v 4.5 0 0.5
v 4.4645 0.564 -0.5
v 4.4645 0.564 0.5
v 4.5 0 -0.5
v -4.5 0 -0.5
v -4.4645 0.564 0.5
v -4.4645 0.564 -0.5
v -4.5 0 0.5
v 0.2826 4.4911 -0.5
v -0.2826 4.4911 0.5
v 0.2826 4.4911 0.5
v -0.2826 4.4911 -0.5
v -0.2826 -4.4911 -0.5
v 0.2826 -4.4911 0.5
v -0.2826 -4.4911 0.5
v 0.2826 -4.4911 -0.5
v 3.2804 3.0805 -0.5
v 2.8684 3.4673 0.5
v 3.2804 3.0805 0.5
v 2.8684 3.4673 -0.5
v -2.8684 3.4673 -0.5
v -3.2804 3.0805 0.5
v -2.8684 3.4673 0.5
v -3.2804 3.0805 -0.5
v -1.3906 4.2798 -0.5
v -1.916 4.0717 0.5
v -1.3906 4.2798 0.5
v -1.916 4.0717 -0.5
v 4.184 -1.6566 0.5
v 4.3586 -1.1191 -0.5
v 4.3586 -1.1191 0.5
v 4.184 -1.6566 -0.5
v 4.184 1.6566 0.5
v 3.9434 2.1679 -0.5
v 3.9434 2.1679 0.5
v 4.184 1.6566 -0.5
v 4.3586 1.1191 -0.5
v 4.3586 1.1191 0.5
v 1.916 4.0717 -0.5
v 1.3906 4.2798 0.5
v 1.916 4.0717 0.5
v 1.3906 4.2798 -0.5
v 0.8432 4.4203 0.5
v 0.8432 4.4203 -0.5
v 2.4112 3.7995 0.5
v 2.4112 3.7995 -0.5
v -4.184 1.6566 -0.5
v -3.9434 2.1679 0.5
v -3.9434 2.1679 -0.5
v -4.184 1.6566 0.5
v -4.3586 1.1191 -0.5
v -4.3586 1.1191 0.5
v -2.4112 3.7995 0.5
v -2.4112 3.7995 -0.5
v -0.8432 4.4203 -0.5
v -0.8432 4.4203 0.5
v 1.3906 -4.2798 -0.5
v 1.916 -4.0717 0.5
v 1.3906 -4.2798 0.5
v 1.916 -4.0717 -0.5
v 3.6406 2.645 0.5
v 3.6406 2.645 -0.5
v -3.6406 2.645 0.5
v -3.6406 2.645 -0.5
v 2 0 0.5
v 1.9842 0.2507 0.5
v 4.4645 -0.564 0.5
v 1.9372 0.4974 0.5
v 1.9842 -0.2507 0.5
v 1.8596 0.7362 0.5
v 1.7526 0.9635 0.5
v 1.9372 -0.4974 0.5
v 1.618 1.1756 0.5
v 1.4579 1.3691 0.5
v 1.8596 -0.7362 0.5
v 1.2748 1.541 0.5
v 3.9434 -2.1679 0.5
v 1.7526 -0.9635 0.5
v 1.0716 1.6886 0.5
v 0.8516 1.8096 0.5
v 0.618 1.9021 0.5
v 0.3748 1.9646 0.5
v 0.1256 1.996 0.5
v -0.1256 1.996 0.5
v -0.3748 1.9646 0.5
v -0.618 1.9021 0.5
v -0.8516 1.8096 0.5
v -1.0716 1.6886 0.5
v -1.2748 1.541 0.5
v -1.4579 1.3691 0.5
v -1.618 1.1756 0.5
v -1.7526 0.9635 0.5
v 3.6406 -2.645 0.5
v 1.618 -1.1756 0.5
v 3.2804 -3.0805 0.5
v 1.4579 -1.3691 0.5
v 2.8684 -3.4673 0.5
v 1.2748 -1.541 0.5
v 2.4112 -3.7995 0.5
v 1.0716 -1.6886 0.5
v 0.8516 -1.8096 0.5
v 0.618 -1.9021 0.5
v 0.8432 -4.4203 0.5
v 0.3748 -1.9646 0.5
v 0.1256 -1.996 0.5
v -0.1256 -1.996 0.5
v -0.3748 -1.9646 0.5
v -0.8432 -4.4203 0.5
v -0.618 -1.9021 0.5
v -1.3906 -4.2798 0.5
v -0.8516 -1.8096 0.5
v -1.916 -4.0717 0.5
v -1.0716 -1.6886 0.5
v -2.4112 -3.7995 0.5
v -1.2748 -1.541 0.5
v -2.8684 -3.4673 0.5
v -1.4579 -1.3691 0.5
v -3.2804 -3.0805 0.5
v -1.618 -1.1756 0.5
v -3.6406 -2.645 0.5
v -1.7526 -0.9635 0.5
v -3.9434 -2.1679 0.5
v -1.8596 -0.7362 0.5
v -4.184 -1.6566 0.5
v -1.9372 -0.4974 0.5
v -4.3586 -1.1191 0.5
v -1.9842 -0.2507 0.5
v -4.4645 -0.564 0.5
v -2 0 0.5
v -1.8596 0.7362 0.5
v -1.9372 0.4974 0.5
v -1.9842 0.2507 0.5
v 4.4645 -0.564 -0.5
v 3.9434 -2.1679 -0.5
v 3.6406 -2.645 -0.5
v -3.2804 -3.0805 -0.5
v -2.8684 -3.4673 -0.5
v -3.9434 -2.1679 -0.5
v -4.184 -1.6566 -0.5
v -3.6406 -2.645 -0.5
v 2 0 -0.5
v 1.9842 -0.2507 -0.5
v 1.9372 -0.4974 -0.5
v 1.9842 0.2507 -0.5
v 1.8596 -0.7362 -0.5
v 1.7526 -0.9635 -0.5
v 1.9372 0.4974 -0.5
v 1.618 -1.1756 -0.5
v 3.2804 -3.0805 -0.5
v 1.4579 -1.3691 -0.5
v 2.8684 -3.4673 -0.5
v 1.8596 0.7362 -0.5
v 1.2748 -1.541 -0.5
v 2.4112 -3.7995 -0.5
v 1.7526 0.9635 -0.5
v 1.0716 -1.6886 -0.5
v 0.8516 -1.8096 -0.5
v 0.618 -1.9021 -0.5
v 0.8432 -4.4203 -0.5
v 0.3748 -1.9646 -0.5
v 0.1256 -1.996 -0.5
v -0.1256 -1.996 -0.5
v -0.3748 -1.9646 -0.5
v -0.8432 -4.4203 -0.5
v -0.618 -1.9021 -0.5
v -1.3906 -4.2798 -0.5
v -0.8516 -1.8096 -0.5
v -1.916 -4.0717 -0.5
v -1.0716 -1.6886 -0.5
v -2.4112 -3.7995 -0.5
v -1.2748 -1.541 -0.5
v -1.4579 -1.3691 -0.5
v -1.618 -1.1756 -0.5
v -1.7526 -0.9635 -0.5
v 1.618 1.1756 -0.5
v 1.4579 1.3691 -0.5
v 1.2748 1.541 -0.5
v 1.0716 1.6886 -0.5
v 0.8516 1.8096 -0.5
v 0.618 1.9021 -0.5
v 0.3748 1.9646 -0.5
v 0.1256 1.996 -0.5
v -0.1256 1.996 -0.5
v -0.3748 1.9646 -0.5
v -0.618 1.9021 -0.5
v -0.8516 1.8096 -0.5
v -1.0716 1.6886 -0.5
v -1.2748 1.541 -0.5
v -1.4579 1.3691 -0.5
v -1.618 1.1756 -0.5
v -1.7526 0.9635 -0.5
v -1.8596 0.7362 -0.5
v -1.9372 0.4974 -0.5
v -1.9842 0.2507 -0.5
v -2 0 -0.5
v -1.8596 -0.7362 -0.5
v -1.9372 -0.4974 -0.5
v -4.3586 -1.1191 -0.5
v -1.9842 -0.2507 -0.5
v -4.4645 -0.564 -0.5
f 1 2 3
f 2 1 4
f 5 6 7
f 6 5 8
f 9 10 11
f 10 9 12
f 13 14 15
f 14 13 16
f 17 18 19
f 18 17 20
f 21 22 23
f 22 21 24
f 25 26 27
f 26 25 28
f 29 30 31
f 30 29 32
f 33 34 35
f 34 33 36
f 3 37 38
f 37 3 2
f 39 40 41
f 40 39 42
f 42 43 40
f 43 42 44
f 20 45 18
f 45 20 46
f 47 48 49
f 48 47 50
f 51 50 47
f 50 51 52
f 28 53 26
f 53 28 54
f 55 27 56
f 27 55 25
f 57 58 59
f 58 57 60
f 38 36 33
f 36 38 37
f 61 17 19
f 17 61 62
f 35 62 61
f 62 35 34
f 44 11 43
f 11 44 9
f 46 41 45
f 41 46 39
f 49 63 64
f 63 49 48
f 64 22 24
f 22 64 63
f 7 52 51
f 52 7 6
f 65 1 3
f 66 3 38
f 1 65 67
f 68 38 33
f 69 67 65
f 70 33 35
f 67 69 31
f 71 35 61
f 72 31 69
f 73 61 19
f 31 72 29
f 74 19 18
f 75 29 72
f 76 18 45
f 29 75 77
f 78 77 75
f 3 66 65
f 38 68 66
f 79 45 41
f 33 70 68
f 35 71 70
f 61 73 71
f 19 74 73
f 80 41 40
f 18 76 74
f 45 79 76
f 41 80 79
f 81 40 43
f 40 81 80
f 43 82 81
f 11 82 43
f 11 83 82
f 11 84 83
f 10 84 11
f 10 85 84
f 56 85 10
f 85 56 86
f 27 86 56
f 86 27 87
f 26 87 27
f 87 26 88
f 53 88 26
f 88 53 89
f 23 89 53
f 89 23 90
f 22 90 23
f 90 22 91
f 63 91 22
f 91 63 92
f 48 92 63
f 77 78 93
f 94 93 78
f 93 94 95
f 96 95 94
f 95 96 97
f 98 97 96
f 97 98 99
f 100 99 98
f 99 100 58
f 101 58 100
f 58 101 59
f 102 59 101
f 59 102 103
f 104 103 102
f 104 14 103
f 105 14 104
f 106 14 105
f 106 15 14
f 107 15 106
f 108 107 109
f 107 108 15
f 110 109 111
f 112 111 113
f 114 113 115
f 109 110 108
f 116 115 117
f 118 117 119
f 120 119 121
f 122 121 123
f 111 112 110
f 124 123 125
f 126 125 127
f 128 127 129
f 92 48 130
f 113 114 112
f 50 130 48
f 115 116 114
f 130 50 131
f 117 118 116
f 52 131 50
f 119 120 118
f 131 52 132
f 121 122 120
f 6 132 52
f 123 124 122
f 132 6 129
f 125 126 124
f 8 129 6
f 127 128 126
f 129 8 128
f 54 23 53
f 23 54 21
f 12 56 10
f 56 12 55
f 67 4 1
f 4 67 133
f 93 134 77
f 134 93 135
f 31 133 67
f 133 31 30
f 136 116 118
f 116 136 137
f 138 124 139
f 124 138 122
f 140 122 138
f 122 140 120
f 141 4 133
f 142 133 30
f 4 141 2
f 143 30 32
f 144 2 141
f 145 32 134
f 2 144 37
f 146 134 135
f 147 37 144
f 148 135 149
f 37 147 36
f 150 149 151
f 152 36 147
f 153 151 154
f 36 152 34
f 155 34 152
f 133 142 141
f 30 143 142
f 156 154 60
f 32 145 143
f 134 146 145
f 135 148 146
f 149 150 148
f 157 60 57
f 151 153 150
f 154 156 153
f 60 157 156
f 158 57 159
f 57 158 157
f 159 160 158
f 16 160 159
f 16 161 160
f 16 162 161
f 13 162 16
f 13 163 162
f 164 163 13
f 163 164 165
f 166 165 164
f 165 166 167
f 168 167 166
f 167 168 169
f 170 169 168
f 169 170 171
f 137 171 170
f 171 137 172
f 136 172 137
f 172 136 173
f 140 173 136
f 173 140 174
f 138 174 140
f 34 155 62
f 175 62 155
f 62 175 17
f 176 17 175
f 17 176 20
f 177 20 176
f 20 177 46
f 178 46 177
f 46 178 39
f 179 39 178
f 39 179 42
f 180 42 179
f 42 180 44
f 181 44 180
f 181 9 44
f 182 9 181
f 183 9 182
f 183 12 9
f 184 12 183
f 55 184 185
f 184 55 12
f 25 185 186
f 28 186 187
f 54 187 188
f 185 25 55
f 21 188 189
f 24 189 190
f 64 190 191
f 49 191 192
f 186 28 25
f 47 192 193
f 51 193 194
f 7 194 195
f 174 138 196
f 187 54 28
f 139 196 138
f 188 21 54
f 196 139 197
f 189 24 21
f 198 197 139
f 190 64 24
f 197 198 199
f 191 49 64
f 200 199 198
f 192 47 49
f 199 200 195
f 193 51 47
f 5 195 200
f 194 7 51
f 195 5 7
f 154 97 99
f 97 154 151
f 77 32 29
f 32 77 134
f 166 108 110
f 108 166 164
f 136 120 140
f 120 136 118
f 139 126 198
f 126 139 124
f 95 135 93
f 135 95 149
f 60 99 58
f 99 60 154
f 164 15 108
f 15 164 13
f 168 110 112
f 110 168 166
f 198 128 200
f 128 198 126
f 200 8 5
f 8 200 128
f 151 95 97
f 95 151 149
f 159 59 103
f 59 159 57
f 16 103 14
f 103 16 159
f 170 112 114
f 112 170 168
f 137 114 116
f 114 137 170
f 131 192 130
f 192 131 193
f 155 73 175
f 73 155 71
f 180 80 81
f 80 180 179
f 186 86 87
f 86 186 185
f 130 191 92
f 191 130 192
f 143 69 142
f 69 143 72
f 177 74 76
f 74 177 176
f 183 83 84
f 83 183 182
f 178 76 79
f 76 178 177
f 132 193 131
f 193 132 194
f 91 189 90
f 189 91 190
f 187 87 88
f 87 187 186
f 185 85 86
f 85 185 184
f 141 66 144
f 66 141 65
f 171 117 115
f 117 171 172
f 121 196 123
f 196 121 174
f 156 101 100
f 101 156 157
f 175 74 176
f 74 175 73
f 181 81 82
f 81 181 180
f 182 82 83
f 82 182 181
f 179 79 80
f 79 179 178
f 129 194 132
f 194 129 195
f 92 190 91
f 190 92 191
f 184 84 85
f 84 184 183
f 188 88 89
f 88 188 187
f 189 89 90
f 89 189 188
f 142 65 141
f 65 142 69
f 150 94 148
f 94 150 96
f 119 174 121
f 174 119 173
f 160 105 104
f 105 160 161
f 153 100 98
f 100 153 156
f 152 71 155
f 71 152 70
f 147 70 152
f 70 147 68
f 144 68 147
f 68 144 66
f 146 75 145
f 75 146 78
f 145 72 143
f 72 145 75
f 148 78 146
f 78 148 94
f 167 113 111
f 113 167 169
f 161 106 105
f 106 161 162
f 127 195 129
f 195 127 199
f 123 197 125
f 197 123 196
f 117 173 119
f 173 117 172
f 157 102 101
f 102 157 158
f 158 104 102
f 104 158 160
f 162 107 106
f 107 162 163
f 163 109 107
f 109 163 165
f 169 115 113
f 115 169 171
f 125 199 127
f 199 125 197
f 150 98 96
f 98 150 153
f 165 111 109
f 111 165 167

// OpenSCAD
$fn = 50;


difference() {
	union() {
		translate(v = [0, 0, -0.5000000000]) {
			cylinder(h = 1, r = 4.5000000000);
		}
	}
	union() {
		translate(v = [0, 0, -100.0000000000]) {
			cylinder(h = 200, r = 2);
		}
	}
}
